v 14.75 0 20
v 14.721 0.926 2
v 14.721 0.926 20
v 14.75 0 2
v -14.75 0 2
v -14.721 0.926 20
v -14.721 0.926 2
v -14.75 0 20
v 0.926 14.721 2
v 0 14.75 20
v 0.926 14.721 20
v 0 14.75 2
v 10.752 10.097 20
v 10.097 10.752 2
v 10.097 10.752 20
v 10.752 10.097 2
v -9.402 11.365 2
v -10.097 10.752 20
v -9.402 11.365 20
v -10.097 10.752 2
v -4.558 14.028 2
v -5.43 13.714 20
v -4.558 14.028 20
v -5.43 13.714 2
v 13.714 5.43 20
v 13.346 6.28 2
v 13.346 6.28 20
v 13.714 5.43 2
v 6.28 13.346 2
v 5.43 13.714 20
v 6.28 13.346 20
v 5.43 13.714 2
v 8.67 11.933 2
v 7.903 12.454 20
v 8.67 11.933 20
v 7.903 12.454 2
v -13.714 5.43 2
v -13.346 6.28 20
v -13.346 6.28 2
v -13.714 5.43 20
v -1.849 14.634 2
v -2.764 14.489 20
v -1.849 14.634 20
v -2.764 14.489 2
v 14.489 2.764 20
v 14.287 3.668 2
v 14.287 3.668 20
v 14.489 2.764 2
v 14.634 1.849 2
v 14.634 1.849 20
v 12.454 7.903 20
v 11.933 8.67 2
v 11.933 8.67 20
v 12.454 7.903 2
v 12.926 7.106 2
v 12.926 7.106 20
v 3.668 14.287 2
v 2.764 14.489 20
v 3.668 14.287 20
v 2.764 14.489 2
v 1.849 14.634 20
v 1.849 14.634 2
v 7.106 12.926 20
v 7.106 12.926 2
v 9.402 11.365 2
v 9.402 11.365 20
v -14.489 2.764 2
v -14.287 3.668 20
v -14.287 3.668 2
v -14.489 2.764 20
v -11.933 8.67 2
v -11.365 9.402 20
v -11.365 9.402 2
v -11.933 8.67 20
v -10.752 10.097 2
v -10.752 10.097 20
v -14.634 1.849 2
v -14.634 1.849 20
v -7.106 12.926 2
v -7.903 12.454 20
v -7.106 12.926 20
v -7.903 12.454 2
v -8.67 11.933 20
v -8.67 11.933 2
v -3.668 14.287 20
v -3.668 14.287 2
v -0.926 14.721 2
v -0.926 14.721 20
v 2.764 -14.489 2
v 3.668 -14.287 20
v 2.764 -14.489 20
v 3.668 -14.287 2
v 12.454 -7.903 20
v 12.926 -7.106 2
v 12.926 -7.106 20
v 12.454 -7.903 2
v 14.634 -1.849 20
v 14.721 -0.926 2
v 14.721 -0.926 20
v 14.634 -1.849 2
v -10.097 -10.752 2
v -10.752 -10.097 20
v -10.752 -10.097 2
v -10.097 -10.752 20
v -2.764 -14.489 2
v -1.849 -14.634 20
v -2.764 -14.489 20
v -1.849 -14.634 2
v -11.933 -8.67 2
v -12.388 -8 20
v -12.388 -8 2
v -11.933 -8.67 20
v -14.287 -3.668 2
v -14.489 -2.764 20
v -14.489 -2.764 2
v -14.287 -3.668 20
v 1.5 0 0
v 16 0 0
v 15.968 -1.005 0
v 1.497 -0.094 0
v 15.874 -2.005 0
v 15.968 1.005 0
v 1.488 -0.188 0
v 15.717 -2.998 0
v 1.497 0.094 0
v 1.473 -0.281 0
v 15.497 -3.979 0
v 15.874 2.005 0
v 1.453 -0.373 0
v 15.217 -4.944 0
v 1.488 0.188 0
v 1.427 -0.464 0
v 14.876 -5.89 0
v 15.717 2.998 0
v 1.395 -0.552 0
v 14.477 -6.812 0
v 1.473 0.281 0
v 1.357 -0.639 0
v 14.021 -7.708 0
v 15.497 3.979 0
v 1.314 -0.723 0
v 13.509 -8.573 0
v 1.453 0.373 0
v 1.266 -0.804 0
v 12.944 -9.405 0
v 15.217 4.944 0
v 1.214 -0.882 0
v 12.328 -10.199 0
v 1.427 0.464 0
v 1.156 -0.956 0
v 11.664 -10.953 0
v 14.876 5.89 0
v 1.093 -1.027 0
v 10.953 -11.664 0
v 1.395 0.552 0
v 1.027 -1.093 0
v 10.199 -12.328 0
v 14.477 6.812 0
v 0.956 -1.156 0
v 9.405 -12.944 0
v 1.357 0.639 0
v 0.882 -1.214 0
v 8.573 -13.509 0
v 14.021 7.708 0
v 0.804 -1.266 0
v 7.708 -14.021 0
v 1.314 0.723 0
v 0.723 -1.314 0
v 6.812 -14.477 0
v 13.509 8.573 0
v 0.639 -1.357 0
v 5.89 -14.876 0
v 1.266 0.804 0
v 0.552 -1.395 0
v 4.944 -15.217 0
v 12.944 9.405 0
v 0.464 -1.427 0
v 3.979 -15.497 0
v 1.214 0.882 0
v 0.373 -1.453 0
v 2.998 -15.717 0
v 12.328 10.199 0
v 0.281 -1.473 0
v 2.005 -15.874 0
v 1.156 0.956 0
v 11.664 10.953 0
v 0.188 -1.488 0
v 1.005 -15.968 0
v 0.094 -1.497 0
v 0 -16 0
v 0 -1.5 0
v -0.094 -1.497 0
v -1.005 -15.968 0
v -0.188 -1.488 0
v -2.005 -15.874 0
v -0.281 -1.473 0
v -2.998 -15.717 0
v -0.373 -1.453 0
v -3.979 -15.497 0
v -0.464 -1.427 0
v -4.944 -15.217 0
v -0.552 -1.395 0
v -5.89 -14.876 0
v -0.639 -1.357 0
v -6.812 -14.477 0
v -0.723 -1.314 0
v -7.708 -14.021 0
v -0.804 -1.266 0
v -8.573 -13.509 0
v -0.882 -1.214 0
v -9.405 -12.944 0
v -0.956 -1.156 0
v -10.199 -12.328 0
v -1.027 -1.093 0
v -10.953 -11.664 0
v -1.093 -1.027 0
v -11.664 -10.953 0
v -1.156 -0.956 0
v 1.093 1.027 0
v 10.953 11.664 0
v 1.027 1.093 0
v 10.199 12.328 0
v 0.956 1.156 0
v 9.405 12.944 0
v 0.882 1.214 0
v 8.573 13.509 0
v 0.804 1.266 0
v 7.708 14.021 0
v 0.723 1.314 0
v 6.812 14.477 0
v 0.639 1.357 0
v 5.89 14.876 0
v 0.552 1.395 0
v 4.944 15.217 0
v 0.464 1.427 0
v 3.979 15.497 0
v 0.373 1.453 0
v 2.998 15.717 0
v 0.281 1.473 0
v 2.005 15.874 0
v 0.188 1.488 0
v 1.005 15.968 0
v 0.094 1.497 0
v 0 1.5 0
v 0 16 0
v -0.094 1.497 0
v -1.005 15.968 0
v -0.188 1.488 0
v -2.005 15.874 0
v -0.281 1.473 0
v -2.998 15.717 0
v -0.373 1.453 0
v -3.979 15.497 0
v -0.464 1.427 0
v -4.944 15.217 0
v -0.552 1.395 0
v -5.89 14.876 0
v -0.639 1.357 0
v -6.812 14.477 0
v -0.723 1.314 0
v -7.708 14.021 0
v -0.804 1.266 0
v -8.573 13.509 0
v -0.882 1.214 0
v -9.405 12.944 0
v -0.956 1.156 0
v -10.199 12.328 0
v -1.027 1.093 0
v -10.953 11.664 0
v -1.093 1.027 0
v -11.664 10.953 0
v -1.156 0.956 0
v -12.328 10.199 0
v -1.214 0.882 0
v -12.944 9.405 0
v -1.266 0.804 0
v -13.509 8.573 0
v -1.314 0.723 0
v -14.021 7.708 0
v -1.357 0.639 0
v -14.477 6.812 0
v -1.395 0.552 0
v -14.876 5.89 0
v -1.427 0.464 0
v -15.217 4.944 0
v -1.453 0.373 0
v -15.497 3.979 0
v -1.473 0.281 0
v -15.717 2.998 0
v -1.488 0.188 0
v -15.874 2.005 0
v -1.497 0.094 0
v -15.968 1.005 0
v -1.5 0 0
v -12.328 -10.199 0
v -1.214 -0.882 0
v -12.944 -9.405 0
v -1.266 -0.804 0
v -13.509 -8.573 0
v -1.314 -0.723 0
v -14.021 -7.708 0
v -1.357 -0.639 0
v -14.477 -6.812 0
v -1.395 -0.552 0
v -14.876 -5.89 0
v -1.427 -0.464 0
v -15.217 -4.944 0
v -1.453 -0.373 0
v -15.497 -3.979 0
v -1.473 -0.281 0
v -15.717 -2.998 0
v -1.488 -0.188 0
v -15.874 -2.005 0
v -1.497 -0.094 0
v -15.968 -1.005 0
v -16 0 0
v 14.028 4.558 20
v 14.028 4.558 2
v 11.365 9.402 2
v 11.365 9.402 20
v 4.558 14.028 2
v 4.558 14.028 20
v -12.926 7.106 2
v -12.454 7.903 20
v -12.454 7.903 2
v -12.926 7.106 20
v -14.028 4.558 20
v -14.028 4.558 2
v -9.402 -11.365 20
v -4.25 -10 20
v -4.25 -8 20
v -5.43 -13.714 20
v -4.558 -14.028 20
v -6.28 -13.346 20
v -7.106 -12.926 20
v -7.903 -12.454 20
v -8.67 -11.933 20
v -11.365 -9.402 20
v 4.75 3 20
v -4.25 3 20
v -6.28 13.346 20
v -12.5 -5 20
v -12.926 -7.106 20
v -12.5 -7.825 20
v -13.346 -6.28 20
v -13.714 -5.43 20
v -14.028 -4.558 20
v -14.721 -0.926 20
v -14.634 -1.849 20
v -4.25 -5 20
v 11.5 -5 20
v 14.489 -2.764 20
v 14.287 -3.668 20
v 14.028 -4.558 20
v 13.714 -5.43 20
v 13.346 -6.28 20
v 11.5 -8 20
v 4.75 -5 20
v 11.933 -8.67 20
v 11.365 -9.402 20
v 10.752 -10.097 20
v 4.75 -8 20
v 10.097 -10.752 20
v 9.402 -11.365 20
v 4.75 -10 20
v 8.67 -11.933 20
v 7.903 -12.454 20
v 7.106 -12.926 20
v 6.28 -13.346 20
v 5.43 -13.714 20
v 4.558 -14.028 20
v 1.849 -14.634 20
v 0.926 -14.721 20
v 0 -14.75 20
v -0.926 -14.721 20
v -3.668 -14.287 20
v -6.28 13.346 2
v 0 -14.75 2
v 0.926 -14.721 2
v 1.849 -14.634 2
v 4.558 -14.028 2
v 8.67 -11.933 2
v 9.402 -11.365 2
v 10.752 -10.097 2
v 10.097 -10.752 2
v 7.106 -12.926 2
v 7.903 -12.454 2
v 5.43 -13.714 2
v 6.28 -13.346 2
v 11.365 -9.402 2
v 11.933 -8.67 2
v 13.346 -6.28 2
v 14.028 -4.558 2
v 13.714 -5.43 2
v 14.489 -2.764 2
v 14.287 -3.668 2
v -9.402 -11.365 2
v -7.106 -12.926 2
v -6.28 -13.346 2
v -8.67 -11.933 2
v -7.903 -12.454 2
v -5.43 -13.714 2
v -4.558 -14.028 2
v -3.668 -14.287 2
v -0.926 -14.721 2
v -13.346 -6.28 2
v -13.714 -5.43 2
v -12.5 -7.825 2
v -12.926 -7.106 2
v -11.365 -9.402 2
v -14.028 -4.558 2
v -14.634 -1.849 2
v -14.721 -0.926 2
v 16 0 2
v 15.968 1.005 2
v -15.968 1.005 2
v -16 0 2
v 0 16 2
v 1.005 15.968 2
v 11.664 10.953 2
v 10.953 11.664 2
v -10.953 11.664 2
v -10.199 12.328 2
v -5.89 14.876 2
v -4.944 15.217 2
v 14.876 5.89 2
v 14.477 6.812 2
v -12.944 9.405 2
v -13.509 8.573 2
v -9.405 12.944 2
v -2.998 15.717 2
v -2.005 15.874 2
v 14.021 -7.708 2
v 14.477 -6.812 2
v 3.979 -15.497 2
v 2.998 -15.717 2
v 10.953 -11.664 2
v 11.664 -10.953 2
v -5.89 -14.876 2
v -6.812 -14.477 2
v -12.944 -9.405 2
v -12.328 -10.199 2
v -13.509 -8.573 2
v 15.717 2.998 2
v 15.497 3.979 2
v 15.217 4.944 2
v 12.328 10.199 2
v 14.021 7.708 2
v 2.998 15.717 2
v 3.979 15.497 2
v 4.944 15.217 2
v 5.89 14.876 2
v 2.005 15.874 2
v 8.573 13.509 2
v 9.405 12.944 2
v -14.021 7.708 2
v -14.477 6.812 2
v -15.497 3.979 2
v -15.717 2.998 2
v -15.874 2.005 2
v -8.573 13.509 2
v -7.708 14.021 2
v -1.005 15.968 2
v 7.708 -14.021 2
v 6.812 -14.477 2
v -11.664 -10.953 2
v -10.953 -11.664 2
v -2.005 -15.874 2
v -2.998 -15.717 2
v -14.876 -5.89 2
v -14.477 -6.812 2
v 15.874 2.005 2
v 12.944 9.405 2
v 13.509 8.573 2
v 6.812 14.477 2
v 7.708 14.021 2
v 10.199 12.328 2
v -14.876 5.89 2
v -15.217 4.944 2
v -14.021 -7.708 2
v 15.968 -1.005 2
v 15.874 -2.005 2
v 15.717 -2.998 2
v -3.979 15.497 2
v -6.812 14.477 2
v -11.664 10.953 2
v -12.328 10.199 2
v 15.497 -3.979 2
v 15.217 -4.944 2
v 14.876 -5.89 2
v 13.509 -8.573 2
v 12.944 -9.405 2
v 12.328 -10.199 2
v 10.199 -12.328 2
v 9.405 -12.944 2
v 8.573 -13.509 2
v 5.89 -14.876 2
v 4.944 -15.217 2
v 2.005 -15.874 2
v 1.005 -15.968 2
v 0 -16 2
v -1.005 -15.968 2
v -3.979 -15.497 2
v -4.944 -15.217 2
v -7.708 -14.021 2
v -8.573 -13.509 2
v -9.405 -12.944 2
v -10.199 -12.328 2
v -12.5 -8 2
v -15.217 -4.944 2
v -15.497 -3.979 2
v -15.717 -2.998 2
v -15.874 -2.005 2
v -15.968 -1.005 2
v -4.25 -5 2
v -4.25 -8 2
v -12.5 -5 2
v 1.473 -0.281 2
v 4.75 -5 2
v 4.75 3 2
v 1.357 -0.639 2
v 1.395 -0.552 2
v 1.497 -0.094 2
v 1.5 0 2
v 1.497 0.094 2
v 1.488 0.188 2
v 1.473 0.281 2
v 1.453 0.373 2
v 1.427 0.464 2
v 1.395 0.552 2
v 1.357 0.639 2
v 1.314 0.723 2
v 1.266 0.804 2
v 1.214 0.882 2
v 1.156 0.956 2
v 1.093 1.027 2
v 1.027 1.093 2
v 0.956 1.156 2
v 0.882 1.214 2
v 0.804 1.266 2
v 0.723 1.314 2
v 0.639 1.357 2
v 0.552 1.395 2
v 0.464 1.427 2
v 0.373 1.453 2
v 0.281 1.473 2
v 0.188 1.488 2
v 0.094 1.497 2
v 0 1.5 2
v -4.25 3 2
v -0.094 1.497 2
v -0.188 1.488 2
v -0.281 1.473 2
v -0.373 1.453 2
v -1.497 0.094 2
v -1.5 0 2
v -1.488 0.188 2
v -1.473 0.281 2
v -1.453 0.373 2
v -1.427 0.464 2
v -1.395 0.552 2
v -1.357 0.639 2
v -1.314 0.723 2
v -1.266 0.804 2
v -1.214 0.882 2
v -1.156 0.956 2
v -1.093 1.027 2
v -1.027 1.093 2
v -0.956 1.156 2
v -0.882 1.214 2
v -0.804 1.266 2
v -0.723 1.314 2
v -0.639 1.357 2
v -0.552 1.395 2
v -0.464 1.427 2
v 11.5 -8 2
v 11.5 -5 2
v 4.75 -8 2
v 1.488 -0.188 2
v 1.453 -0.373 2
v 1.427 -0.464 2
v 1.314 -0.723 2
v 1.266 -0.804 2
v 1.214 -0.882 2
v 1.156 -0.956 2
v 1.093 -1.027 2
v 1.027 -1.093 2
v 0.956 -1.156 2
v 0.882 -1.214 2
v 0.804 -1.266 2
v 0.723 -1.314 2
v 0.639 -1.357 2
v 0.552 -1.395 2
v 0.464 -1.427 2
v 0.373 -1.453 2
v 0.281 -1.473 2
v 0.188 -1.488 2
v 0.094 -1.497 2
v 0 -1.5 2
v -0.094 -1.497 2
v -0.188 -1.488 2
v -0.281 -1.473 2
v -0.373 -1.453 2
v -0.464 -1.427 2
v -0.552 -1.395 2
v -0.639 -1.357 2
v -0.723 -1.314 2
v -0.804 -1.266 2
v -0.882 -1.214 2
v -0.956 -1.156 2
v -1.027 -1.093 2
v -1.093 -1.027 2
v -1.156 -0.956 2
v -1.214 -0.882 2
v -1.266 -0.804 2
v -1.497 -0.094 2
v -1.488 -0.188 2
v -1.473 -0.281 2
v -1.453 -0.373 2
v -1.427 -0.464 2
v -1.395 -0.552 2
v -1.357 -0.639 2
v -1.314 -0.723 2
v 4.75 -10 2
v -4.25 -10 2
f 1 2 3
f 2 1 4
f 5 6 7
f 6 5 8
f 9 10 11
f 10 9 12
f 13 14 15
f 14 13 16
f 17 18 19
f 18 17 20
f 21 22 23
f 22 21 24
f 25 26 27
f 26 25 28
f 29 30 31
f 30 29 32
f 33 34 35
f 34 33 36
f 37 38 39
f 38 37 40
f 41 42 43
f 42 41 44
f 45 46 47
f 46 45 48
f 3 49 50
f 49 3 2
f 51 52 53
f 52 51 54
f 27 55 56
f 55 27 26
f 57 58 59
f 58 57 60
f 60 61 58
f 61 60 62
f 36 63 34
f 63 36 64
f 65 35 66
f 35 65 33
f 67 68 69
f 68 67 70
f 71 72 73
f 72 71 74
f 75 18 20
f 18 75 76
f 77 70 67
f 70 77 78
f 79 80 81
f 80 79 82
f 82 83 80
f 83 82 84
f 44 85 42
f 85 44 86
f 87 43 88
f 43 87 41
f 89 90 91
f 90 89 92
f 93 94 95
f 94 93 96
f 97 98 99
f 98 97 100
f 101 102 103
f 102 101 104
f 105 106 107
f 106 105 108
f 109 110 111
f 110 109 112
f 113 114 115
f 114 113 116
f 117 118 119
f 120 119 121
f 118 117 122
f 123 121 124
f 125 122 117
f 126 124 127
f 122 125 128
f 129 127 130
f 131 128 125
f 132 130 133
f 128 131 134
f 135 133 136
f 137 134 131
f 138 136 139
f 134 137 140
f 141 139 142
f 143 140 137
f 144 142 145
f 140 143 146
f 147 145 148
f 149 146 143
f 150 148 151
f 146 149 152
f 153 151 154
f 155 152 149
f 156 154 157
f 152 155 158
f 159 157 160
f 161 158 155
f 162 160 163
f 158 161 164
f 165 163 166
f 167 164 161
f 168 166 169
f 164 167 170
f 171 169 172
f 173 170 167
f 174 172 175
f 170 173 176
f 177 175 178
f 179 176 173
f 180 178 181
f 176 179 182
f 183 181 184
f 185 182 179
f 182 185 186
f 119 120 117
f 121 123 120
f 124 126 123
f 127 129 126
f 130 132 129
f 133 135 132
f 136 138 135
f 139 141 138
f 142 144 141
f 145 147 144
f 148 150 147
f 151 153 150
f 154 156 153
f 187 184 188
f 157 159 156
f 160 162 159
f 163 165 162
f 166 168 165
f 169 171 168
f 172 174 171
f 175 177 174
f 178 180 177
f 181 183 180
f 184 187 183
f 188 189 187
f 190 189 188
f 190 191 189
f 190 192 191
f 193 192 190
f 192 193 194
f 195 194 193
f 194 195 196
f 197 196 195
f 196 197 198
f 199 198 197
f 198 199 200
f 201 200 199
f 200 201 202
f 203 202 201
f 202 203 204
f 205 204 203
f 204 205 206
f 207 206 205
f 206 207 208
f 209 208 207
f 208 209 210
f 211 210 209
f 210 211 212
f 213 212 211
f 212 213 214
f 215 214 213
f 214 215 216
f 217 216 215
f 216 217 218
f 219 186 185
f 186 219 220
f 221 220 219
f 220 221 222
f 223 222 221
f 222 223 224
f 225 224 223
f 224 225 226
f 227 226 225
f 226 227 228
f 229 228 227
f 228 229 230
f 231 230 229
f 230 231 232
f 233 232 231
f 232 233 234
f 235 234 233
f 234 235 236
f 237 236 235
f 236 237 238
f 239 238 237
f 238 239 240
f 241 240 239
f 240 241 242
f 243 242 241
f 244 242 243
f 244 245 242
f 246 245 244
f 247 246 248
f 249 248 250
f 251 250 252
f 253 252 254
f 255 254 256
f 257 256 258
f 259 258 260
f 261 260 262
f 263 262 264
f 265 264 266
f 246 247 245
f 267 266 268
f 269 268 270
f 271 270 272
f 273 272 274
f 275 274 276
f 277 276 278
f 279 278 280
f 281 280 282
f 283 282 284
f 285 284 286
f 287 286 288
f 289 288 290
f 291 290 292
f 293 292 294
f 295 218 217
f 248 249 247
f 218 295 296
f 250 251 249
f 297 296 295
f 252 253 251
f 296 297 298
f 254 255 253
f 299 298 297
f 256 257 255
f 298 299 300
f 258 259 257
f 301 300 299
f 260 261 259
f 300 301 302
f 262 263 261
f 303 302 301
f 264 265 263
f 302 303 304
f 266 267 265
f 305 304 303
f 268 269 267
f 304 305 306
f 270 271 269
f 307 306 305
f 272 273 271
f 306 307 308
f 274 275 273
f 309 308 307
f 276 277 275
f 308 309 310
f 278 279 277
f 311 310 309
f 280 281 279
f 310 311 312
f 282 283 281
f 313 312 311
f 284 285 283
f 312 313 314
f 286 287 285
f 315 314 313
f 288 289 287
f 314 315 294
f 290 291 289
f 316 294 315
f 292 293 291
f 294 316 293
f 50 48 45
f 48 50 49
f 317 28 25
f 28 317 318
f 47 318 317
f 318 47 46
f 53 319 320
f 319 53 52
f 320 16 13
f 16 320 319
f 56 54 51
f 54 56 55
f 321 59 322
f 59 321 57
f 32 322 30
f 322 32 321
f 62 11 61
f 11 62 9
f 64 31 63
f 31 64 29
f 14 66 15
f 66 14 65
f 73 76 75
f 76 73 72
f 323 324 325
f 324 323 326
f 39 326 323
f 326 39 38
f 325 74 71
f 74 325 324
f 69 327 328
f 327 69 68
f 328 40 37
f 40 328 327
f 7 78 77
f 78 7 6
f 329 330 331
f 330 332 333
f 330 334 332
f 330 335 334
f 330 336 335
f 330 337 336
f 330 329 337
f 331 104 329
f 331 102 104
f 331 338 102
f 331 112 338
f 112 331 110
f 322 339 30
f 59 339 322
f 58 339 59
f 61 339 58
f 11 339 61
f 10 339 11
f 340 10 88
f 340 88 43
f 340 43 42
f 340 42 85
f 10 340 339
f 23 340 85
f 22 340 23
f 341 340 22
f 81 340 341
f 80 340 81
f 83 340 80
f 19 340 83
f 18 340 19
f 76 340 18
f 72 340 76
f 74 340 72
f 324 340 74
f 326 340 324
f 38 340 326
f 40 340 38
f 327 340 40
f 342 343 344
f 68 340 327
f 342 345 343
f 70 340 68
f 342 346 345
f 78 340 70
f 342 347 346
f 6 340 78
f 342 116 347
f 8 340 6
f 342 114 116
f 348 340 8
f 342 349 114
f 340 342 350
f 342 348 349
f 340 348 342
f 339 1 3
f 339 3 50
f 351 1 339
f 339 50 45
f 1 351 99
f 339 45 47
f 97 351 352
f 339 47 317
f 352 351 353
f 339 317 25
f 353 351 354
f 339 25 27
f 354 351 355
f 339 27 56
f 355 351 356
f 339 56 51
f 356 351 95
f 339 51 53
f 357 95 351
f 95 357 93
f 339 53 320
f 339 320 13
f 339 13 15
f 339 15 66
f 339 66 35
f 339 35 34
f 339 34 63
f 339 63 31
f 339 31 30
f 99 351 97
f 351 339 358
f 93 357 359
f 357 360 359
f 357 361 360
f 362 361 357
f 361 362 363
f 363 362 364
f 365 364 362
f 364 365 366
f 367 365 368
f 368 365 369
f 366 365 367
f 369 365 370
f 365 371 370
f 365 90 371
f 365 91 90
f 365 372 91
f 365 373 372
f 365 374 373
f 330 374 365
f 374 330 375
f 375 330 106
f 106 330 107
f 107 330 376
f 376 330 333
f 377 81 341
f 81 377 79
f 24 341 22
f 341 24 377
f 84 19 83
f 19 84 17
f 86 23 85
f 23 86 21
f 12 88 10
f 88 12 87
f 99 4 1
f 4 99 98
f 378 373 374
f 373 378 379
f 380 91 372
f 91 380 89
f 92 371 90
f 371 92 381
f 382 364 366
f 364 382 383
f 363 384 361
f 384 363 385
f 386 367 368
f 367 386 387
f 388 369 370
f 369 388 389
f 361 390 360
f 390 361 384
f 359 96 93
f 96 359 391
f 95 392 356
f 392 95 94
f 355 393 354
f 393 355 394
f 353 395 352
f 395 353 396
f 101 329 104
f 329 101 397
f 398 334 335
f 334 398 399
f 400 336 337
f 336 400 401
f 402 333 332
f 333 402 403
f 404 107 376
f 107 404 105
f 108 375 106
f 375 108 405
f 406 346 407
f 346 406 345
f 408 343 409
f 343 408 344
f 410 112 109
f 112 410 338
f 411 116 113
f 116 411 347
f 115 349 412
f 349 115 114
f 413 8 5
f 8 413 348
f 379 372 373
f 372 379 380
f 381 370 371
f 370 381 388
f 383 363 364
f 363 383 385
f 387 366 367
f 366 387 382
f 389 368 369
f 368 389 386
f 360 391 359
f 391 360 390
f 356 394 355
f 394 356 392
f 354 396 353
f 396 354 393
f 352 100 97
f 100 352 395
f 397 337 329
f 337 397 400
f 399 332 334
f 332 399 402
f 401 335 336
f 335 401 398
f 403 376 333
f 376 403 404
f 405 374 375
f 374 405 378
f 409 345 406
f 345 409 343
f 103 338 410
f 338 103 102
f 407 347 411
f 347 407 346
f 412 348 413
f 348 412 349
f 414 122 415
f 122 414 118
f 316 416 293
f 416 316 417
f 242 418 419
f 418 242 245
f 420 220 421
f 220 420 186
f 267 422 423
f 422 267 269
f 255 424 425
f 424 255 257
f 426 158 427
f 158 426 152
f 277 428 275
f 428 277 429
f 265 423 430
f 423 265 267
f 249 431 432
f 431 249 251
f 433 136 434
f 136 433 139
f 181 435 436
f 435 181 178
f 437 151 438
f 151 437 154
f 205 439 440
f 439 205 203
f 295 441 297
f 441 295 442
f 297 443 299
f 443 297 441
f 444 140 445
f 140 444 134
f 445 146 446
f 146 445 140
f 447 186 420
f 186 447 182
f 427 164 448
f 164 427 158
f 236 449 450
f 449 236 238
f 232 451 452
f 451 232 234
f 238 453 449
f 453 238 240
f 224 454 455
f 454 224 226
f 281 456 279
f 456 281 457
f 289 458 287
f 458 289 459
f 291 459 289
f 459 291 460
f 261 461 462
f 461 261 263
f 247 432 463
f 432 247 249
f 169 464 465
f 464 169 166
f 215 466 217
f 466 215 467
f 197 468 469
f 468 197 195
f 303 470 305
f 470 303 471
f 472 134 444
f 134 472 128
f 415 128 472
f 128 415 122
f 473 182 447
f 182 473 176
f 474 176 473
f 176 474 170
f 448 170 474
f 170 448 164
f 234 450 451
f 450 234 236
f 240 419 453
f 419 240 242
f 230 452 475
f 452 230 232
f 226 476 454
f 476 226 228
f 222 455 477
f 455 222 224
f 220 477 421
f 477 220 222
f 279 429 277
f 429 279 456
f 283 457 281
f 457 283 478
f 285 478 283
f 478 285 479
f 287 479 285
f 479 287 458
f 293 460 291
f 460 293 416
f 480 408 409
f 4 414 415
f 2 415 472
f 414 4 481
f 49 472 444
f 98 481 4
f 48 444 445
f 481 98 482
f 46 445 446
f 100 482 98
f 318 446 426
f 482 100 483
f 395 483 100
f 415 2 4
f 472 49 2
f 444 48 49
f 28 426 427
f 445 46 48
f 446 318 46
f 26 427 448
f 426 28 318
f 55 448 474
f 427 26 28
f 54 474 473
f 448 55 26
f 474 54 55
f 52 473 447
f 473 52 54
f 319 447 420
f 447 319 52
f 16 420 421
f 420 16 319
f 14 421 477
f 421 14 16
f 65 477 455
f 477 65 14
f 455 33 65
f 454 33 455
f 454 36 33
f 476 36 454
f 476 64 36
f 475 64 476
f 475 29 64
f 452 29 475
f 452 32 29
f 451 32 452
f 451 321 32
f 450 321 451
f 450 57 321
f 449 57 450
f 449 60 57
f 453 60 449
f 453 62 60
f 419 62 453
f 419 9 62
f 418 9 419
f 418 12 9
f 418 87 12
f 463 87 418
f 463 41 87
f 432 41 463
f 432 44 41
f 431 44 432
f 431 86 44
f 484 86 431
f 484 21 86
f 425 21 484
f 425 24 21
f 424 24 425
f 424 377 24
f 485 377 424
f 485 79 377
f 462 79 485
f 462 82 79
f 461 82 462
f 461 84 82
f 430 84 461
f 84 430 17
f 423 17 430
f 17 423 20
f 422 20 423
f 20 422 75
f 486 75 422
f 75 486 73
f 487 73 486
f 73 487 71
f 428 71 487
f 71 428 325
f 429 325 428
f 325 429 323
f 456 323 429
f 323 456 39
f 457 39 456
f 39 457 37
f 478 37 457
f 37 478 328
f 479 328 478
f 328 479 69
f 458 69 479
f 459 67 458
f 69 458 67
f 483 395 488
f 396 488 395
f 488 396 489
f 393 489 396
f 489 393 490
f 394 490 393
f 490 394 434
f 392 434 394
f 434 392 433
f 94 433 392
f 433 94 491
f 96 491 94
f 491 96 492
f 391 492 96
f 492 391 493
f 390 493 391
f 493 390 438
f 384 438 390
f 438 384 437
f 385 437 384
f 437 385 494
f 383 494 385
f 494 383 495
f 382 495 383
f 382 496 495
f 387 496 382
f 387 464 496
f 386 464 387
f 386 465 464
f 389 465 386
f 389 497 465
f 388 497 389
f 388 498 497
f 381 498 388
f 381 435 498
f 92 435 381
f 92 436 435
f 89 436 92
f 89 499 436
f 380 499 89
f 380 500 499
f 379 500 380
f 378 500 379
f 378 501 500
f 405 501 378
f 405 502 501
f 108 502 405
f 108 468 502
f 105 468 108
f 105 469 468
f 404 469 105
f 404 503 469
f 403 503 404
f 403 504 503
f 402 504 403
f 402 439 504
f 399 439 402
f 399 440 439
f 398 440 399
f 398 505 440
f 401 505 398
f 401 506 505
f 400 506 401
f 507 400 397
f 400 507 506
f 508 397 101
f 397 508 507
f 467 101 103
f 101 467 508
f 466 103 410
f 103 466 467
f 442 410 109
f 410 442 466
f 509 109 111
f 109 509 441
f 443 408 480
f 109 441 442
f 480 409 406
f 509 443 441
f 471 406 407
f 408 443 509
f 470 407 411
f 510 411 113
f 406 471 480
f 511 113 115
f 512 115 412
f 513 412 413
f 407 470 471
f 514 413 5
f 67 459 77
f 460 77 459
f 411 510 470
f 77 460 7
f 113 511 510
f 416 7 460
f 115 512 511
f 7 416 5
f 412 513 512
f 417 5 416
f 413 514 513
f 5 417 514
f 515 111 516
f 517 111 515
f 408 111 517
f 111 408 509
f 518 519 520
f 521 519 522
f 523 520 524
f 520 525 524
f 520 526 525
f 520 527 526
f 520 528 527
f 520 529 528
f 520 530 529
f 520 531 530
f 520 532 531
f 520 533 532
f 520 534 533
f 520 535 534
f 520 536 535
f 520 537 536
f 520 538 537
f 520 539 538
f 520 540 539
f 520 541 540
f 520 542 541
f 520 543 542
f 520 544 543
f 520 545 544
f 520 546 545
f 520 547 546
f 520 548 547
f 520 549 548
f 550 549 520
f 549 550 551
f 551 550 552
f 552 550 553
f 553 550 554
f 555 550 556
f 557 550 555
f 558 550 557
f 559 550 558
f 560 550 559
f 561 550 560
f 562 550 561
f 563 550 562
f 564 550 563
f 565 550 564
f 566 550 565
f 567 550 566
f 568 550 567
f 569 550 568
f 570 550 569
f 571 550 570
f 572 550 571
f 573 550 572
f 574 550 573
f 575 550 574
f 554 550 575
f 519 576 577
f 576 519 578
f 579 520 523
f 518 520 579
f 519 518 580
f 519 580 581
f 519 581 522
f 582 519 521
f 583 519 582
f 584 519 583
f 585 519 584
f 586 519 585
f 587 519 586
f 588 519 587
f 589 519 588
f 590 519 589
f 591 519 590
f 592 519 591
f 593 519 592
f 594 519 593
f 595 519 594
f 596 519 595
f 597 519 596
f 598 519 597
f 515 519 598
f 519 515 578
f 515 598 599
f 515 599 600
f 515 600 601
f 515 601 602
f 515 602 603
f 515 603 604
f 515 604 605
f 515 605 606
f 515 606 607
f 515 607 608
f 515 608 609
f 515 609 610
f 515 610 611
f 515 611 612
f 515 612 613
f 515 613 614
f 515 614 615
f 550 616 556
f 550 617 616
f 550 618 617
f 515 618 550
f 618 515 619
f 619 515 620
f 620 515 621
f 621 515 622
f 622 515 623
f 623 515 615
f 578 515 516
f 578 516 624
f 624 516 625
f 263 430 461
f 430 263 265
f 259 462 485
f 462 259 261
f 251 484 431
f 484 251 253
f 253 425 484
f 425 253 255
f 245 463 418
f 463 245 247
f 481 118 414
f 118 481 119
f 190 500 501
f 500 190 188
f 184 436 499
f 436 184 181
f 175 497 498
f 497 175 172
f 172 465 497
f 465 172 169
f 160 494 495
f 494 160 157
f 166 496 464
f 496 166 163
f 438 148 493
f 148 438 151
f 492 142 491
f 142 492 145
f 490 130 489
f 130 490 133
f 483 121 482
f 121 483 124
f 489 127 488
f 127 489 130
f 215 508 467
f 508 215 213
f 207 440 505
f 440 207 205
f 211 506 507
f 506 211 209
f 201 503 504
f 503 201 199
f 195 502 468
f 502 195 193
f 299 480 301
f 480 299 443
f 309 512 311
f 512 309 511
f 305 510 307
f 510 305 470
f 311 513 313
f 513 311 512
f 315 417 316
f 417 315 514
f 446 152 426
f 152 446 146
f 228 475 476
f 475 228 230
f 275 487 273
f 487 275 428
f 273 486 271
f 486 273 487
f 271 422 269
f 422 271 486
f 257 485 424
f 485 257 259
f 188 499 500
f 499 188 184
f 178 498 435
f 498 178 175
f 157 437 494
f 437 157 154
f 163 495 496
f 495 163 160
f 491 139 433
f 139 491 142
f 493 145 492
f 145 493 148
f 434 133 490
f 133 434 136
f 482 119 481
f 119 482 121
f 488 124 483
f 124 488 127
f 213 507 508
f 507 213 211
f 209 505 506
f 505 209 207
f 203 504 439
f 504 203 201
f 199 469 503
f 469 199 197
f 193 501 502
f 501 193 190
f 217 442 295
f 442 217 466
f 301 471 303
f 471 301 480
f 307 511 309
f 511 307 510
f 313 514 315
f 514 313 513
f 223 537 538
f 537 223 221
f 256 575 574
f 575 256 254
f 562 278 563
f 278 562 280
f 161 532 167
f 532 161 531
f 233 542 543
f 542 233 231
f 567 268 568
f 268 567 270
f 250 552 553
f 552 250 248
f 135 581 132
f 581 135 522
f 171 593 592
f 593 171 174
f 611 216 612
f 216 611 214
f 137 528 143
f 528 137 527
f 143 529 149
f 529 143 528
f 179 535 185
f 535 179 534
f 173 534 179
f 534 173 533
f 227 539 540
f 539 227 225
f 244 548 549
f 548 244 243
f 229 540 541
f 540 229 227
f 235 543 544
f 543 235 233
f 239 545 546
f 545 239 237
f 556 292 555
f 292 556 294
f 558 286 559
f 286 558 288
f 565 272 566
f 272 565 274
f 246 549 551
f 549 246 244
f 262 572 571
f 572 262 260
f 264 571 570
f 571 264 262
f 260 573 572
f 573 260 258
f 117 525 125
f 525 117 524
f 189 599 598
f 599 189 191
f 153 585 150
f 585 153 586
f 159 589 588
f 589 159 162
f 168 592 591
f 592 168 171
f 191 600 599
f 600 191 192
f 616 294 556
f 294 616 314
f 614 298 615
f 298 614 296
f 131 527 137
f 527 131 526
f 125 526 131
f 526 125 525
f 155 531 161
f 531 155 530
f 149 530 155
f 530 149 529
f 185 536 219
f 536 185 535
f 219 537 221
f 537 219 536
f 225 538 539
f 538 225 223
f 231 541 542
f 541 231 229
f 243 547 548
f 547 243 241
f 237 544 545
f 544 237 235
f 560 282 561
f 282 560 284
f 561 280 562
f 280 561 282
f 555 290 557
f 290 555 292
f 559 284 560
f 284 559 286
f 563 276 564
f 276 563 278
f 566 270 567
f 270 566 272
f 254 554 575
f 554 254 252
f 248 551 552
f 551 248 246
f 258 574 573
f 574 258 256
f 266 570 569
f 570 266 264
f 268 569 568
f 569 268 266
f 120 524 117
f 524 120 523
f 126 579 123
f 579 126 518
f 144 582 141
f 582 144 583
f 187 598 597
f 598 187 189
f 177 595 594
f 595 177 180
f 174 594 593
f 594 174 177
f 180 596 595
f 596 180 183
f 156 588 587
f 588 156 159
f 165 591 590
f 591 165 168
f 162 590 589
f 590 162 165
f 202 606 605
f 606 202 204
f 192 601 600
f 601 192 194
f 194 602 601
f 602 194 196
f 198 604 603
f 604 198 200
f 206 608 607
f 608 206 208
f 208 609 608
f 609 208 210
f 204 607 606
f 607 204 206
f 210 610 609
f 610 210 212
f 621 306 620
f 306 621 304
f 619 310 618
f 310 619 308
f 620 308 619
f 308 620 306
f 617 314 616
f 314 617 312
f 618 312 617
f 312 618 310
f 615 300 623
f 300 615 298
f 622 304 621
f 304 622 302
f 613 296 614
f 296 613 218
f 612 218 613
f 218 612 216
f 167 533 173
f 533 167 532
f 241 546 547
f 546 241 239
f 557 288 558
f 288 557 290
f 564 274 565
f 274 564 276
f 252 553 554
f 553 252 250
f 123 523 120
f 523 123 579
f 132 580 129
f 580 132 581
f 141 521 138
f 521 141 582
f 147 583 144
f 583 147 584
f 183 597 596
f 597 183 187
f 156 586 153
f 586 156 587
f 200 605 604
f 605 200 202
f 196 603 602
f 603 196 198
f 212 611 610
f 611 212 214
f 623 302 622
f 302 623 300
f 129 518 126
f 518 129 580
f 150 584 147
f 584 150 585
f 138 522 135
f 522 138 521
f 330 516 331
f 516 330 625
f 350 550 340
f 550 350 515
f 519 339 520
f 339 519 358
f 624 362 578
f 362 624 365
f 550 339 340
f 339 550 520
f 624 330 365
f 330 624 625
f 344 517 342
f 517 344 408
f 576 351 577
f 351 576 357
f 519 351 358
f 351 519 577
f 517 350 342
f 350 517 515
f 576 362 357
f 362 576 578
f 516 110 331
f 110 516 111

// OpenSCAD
$fn = 100;
difference() {
    union() {
        cylinder(r=29.5/2, h=20);
        cylinder(r=32/2, h=2);
    }
    translate([0,0,-1]) cylinder(r=1.5, h=30);
    translate([-4.25,-10,2]) cube([9,13,30]);
    translate([-12.5,-8,2]) cube([24,3,30]);

}
